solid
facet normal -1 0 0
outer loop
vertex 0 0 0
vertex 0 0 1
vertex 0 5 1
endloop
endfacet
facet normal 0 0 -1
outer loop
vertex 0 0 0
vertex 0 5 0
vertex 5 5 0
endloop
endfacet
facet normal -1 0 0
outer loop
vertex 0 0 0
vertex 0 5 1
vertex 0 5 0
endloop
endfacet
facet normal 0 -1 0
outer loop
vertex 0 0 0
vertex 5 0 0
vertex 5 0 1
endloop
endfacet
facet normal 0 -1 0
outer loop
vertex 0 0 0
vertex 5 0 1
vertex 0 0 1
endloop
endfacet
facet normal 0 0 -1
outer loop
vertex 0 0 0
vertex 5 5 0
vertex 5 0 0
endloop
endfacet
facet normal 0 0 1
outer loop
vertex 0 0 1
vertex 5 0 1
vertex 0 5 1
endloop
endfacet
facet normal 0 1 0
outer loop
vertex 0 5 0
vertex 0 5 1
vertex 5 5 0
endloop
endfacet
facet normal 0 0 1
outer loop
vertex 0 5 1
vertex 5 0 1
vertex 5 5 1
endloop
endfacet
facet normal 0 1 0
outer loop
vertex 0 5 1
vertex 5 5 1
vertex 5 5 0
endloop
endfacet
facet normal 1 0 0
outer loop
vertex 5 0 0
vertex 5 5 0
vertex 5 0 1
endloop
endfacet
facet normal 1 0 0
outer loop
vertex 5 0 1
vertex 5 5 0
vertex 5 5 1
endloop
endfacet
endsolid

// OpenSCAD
/* Warning, this is a very basic generator with a lot of approximation 
input data : [VQFN, 4AW, 5X5mm, 36, , A, C04-00579A]
generated by com.zoubworld.electronics.cad.model3d.Basic
Date : Sun Feb 15 10:50:49 CET 2026
*/

//body
color("black")
translate([0,0,0])
cube([5.0,5.0,1.0], center=false);
